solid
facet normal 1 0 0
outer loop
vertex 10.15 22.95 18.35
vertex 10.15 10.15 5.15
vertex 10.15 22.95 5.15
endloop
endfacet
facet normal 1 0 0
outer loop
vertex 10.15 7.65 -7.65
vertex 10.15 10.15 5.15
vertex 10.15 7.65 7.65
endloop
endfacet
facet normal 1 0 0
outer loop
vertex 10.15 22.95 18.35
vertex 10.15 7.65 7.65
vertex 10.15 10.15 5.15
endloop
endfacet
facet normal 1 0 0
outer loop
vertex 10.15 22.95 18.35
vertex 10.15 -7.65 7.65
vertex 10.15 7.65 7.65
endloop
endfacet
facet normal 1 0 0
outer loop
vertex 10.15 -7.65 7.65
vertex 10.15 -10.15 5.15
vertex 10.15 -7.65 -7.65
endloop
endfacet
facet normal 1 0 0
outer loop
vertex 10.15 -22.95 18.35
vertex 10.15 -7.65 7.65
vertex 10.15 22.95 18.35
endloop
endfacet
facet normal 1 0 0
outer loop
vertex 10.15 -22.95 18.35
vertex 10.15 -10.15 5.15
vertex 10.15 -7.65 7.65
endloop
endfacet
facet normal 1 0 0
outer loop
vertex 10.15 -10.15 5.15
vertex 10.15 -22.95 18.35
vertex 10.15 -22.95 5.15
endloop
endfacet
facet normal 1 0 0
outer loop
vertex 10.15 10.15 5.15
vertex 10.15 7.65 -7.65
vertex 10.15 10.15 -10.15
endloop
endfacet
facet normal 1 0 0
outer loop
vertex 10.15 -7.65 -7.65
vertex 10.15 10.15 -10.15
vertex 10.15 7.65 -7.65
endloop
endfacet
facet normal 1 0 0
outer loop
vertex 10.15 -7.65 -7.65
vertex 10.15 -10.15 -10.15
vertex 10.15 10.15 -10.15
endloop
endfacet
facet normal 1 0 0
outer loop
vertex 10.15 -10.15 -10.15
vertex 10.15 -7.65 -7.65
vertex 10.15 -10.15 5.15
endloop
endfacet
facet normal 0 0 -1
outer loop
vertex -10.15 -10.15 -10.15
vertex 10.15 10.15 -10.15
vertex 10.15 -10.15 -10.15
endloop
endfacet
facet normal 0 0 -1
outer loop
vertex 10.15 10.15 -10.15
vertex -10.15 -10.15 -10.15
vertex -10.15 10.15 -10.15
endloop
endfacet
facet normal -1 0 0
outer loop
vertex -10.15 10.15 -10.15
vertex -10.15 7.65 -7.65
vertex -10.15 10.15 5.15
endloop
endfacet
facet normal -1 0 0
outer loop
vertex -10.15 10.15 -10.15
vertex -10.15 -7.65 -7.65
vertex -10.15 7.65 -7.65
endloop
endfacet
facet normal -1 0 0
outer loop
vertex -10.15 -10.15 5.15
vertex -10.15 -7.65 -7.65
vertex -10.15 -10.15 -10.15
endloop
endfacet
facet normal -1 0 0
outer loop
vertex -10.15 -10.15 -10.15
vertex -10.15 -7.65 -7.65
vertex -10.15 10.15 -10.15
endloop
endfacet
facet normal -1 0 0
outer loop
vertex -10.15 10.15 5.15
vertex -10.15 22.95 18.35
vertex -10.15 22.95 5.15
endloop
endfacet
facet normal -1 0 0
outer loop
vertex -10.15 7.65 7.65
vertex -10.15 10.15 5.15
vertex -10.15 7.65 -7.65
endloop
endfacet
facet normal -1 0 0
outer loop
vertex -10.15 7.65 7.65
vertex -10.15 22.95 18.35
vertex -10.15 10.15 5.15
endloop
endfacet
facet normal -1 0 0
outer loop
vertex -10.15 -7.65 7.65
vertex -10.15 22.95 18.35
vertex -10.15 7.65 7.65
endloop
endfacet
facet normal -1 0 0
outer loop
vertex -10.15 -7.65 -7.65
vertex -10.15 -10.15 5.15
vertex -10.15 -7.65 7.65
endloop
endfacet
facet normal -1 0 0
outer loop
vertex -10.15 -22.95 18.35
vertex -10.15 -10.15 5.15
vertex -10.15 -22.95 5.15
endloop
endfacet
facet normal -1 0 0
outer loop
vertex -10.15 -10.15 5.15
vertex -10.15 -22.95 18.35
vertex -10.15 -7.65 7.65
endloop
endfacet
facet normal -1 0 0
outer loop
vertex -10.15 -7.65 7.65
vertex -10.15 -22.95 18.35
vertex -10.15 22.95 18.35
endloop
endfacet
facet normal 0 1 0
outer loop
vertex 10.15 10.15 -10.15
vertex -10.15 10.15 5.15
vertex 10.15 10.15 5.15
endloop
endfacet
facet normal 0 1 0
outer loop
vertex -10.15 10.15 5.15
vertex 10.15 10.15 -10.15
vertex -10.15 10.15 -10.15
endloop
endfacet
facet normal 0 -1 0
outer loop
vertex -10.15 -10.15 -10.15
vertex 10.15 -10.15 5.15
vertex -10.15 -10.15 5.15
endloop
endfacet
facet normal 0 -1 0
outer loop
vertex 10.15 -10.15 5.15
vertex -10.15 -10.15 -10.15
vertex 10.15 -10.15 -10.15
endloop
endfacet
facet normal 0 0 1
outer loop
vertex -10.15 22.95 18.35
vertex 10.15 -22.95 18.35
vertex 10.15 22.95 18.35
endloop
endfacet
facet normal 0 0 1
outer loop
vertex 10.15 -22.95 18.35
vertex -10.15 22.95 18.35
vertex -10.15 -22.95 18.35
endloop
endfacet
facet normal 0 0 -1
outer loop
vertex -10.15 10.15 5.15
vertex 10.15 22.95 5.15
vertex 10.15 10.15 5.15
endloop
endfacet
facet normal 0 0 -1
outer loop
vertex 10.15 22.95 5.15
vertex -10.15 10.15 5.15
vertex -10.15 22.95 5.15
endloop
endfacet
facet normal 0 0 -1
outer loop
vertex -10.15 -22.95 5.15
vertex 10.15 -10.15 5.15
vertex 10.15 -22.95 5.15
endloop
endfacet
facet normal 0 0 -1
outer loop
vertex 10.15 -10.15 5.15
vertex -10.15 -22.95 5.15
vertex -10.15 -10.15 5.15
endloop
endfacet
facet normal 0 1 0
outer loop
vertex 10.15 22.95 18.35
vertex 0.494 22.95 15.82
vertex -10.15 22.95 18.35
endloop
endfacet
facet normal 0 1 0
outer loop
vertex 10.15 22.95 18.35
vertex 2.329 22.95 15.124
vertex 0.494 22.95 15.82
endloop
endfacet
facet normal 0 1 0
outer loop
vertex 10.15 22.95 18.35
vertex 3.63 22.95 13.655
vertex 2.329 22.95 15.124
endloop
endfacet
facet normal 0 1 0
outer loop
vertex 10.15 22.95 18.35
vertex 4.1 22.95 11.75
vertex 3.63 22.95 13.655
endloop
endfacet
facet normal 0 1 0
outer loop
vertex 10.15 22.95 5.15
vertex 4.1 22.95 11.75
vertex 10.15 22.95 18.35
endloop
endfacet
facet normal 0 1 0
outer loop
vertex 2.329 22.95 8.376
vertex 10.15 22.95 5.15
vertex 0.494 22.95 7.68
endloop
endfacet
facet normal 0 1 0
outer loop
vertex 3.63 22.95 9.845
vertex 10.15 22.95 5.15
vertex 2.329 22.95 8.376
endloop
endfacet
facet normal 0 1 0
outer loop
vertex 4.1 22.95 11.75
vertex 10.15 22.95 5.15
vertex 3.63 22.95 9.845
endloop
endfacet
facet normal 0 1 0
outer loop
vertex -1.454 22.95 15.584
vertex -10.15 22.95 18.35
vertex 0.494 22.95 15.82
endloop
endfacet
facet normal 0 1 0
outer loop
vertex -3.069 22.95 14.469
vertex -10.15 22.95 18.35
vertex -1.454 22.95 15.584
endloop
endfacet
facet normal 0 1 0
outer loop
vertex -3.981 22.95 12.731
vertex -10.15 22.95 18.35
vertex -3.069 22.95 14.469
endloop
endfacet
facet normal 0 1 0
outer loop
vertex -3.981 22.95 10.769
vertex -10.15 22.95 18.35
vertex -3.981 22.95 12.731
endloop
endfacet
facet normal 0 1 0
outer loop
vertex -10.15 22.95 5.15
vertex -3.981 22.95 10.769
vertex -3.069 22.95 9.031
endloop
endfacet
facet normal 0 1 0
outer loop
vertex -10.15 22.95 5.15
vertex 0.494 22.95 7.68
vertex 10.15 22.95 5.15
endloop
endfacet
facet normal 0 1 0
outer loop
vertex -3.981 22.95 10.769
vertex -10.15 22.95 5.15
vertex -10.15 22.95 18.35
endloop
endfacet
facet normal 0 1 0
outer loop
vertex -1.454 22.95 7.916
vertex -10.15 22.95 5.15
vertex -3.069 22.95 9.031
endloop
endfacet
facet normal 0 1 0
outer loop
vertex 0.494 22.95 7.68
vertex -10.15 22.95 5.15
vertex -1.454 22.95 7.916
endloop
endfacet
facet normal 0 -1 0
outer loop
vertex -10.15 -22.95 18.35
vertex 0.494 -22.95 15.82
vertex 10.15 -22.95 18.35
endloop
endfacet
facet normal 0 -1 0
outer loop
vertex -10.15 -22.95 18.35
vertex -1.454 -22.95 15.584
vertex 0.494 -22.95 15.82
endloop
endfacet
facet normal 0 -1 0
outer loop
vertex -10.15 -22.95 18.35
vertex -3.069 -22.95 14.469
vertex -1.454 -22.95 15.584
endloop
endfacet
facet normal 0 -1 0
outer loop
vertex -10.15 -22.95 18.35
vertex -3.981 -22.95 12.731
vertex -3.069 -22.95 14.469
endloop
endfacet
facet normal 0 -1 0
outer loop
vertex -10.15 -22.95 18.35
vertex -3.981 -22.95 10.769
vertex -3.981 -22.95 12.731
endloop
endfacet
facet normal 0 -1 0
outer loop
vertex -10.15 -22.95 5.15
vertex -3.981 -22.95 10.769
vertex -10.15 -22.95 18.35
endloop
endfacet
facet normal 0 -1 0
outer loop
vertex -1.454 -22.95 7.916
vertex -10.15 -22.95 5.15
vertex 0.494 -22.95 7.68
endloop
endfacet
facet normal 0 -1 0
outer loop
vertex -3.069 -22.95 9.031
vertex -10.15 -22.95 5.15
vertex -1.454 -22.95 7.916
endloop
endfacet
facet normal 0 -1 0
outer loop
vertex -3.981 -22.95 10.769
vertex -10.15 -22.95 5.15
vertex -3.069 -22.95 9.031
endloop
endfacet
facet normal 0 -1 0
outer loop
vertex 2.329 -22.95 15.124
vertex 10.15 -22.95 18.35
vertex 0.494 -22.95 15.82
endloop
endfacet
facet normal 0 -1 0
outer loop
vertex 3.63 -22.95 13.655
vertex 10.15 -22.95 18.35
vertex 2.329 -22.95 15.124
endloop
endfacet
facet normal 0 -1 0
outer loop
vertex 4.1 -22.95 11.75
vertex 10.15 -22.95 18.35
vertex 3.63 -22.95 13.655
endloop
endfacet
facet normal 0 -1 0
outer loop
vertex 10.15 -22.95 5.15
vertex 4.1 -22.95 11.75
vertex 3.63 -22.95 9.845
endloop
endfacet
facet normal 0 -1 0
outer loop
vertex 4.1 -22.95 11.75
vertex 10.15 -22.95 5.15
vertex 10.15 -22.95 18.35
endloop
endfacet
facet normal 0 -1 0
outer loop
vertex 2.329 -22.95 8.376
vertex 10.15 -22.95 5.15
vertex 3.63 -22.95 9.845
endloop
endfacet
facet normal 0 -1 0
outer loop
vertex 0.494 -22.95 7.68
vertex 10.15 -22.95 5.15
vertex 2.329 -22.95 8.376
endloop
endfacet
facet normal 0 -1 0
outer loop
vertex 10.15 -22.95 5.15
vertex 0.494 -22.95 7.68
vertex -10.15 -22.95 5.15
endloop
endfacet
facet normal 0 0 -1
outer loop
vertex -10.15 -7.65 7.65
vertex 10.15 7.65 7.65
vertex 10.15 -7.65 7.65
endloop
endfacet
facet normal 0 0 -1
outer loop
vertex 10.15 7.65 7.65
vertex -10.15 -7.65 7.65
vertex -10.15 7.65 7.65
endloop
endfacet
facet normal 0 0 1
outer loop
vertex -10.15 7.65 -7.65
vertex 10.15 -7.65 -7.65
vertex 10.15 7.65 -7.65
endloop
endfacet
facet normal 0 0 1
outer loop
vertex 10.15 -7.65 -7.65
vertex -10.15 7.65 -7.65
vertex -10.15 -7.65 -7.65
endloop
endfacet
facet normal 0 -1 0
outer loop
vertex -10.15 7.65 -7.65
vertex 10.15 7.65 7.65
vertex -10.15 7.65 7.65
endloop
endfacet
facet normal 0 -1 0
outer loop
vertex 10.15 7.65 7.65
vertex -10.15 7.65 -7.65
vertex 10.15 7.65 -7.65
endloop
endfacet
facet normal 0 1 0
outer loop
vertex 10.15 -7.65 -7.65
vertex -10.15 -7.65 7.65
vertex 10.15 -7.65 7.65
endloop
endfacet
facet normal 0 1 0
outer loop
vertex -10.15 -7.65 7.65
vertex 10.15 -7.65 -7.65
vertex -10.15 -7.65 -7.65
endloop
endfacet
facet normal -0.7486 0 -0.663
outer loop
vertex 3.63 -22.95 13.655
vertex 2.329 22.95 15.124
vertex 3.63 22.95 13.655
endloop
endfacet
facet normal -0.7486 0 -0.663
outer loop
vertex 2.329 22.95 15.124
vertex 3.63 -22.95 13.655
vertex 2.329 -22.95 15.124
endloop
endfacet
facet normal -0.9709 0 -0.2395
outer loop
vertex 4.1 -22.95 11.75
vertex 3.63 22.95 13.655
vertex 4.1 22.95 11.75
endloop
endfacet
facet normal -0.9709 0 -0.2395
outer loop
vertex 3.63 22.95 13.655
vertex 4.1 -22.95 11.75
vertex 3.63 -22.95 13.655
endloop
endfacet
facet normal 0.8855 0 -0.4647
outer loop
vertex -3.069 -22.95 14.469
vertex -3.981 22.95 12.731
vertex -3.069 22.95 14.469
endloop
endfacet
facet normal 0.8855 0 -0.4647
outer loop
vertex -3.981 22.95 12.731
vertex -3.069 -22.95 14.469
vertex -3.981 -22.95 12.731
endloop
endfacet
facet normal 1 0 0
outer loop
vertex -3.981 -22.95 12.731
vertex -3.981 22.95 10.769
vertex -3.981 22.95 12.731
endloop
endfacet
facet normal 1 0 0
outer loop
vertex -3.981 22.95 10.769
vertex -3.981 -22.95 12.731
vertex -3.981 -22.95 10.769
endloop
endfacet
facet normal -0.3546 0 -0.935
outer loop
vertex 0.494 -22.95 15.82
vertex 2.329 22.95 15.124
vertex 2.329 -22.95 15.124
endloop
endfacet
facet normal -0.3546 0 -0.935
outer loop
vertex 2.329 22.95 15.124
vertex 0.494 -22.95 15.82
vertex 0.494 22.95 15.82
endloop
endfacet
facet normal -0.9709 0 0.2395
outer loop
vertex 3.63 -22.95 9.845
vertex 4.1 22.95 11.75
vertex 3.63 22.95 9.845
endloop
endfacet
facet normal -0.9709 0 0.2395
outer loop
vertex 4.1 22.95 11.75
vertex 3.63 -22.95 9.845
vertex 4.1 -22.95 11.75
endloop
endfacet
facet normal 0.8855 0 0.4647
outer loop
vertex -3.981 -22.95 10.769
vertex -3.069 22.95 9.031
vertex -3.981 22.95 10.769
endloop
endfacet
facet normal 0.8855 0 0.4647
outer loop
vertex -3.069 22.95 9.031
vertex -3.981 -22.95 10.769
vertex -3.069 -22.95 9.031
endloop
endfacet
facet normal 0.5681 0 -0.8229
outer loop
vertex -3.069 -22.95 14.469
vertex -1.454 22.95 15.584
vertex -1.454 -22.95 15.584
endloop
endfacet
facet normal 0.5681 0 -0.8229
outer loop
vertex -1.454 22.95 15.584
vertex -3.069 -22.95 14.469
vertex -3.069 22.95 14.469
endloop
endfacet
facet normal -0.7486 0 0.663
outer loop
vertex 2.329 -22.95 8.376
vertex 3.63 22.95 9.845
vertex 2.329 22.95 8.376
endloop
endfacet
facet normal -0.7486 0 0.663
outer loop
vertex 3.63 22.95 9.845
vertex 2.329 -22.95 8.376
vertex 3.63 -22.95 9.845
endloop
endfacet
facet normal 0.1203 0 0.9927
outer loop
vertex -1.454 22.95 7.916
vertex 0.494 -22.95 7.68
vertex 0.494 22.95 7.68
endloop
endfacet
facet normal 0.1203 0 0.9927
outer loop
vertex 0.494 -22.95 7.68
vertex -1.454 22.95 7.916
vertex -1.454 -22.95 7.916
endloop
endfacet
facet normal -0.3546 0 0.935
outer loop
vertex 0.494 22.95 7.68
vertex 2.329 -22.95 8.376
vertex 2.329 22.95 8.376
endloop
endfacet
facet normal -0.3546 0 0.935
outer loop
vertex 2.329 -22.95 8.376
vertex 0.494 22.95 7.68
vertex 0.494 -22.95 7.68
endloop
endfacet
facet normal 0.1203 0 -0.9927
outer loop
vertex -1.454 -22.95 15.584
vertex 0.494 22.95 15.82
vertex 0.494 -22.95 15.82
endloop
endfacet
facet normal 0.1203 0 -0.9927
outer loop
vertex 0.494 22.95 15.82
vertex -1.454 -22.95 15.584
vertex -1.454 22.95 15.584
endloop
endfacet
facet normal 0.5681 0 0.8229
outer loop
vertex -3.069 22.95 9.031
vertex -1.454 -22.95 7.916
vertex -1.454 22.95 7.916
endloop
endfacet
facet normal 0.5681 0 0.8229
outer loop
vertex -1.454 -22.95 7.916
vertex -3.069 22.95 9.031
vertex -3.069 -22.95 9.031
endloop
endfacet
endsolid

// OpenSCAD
hranol = 15.3;
trubicka = 8.2;
edge=5;

difference(){
	union(){
		cube([hranol+edge, hranol+edge, hranol+edge], center = true);
		translate([0,0,(hranol+trubicka)/2]) cube([hranol+edge, 3*hranol, trubicka+edge], center = true);
	}
union(){
	cube([1400, hranol, hranol], center = true);
	translate([0,0,(hranol+trubicka)/2]) rotate([90,0,0]) cylinder(d=trubicka, h=1000,center=true);
}
}
